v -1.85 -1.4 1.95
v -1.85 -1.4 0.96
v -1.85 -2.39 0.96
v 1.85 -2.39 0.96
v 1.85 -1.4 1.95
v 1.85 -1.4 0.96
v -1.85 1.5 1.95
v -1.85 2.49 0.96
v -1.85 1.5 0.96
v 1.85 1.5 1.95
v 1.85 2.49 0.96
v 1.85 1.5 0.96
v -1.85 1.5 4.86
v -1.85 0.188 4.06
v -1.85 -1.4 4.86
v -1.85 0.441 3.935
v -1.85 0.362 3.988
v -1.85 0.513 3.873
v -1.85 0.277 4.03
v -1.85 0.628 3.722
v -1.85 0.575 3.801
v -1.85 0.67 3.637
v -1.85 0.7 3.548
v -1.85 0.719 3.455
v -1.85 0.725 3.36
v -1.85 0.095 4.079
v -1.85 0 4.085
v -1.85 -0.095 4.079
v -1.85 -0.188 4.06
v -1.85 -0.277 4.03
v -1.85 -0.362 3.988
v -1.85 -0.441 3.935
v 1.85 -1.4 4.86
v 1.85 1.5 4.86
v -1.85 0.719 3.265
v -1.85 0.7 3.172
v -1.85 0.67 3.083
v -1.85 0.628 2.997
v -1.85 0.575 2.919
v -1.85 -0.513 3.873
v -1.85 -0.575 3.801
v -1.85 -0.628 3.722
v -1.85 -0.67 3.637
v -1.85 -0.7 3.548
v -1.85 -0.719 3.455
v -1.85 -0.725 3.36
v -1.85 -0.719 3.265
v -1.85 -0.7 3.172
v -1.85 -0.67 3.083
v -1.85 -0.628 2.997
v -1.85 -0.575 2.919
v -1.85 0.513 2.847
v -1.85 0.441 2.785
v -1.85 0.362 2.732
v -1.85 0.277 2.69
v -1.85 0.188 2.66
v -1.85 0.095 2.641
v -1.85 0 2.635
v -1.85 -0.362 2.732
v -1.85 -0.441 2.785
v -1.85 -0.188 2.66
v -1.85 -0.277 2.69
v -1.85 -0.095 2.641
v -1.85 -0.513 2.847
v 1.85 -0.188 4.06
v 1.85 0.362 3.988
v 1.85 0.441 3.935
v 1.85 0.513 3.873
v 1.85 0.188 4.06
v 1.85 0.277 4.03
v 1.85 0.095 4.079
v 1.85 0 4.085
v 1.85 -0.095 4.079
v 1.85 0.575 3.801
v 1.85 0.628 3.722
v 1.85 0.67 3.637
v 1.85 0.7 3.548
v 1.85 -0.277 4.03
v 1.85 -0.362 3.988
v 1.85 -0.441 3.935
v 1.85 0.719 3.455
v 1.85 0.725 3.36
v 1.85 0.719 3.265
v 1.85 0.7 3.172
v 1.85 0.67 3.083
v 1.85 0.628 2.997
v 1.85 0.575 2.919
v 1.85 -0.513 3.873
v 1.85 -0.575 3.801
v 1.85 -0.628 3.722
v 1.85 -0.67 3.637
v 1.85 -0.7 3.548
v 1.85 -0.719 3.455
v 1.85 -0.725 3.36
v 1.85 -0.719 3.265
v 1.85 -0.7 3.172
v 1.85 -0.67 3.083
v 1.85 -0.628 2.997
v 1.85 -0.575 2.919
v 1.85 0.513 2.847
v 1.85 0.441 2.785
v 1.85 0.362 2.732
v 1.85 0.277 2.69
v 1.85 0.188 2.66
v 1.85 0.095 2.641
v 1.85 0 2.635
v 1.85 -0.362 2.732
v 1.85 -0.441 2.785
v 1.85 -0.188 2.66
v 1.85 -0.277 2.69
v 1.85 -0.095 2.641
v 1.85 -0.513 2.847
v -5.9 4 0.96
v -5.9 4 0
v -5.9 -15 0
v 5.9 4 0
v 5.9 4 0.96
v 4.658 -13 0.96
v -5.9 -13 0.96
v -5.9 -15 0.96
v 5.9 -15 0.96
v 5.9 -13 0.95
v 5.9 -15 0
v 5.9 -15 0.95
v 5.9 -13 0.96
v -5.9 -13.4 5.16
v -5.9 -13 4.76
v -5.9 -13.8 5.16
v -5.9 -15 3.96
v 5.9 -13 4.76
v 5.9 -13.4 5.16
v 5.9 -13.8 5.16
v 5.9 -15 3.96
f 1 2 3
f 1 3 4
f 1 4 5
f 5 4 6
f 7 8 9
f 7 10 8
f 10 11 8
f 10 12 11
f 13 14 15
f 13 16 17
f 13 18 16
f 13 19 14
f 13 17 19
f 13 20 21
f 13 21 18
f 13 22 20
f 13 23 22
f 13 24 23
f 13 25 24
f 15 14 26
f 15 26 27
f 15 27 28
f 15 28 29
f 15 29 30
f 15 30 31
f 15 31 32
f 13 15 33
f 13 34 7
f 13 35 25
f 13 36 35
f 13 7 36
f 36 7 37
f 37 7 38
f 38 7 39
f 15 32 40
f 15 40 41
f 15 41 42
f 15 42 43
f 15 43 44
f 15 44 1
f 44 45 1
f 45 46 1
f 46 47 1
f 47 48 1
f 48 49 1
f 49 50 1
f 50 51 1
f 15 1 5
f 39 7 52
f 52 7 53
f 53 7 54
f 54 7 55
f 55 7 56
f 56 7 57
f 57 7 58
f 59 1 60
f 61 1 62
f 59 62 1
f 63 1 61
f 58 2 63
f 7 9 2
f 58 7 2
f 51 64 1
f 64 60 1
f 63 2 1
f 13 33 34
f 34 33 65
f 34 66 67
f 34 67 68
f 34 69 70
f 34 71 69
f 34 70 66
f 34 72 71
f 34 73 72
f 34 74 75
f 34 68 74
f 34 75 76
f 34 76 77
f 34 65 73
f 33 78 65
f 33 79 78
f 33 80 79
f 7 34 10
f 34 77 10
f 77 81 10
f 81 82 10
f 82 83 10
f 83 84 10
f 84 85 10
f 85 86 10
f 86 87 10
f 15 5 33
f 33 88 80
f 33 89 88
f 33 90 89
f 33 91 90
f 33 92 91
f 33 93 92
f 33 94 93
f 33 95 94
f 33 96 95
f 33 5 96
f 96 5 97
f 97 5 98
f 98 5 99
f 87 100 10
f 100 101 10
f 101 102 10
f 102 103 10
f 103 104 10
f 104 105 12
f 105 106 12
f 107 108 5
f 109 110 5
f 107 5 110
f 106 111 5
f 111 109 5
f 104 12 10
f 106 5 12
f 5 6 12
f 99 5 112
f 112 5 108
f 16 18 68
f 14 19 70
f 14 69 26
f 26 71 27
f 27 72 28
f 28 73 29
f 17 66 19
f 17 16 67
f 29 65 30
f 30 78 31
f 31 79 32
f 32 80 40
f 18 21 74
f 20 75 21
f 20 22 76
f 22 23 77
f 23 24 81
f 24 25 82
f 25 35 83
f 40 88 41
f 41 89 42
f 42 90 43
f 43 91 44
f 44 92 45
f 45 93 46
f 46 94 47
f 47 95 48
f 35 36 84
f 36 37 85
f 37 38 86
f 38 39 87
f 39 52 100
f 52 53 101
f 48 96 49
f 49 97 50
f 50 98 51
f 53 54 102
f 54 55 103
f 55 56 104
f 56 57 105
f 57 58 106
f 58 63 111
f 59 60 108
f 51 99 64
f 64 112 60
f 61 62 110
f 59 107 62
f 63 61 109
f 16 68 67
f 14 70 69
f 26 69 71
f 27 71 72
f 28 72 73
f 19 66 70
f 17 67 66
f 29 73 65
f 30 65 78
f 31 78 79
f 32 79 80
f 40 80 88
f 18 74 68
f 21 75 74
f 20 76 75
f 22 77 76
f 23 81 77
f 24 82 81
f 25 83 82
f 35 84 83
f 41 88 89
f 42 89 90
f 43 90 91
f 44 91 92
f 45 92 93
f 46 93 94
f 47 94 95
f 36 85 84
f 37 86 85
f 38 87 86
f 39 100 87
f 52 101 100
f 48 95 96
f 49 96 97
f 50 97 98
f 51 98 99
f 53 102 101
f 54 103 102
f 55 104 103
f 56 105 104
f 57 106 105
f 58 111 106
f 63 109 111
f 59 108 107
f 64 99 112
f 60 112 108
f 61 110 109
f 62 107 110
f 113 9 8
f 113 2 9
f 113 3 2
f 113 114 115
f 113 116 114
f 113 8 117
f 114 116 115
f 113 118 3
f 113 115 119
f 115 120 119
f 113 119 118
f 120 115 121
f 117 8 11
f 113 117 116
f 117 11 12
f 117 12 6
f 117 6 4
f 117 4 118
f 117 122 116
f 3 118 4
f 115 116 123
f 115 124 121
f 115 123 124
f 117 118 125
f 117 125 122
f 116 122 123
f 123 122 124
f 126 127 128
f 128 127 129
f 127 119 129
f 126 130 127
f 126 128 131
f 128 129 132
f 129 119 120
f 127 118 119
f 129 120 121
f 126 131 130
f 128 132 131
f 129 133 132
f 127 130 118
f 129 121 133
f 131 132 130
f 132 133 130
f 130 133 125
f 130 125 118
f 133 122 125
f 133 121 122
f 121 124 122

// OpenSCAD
// Pin-mounted spring clip for IVANKY lavalier transmitters
// Reuses the original hinge posts + pin. No metal spring: a flat PETG leaf
// is the spring. A block between the posts carries the pin and butts against
// the small square nub, so the clip can't rotate.
//
// Frame (as designed): x = across mic, y = along mic (+ toward charging pins),
// z = up from the back surface. Origin = pin axis projected onto the surface.
//
// PRINT: exported upside down -- the flat top of the leaf sits on the bed.
// No supports. PETG, 100% infill. The leaf is printed flat, which is the
// strong direction for a leaf spring.
//
// ---- MEASURE THESE (calipers) ----
pin_d      = 1.2;   // diameter of the original pin
pin_z      = 1.5;   // height of pin CENTER above the back surface
post_h     = 3.5;   // how far the posts stick up from the back surface
post_gap   = 4.0;   // gap between the posts (measured)
post_y1    = 1.6;   // pin center -> lower end of posts (toward charging pins)
nub_y      = -1.7;  // pin center -> lower face of the little square nub (negative = toward top)
// -----------------------------------

pin_clear  = 0.25;  // hole oversize so the pin turns/slides in
side_clear = 0.15;  // per side, block vs posts
leaf_w     = 11.8;    // body is 18 wide, clip slot is 12.2 mm
leaf_t     = 0.96;   // leaf thickness: thicker = stronger grip, but more strain
over_clear = 0.4;   // leaf clearance above post tops
top_y      = -4.0;  // leaf extends this far toward the top (cosmetic cover)
block_end  = post_y1 - 0.2; // block fills the whole post gap; leaf flexes from here to the pad
fillet     = 1.0;   // wedge where block meets leaf (+y / -y faces)
tip_y      = 15.0;  // leaf end (stays just above the slot at ~16.5)
pad_len    = 2.0;   // contact pad length along y
preload    = 0.30;   // pad reaches this far "into" the body -> clamping force

$fn = 48;

zb      = post_h + over_clear;   // underside of leaf
block_w = post_gap - 2 * side_clear;

module block() {
    y0 = nub_y + 0.2;
    difference() {
        union() {
            translate([-block_w / 2, y0, 0])
                cube([block_w, block_end - y0, zb + 0.01]);
            // fillets: block -> leaf, both ends (stays narrow so it clears posts)
            for (e = [[block_end, 1], [y0, -1]])
                translate([block_w / 2, e[0], zb + 0.01]) rotate([0, -90, 0])
                    linear_extrude(block_w)
                        polygon([[0, 0], [0, e[1] * fillet], [-fillet, 0]]);
        }
        translate([0, 0, pin_z])
            rotate([0, 90, 0]) cylinder(d = pin_d + pin_clear, h = 10, center = true);
    }
}

module leaf() {
    translate([-leaf_w / 2, top_y, zb]) cube([leaf_w, tip_y - top_y, leaf_t]);
}

module pad() {
    // hangs from leaf tip down to -preload; chamfered on the tip side so
    // fabric slides in, gentle round on the inner side
    h = zb + preload;
    translate([leaf_w / 2, 0, 0]) rotate([0, -90, 0])
    linear_extrude(leaf_w)
        // 2D in (z, y)
        polygon([
            [zb + 0.01, tip_y - pad_len],
            [zb + 0.01, tip_y],
            [-preload + 1.2, tip_y],          // chamfer start
            [-preload, tip_y - 1.2],          // contact edge
            [-preload, tip_y - pad_len + 0.4],
            [-preload + 0.4, tip_y - pad_len],
        ]);
}

module clip() {
    union() { block(); leaf(); pad(); }
}

// print orientation: leaf top face on bed
translate([0, 0, zb + leaf_t]) rotate([180, 0, 0]) clip();
